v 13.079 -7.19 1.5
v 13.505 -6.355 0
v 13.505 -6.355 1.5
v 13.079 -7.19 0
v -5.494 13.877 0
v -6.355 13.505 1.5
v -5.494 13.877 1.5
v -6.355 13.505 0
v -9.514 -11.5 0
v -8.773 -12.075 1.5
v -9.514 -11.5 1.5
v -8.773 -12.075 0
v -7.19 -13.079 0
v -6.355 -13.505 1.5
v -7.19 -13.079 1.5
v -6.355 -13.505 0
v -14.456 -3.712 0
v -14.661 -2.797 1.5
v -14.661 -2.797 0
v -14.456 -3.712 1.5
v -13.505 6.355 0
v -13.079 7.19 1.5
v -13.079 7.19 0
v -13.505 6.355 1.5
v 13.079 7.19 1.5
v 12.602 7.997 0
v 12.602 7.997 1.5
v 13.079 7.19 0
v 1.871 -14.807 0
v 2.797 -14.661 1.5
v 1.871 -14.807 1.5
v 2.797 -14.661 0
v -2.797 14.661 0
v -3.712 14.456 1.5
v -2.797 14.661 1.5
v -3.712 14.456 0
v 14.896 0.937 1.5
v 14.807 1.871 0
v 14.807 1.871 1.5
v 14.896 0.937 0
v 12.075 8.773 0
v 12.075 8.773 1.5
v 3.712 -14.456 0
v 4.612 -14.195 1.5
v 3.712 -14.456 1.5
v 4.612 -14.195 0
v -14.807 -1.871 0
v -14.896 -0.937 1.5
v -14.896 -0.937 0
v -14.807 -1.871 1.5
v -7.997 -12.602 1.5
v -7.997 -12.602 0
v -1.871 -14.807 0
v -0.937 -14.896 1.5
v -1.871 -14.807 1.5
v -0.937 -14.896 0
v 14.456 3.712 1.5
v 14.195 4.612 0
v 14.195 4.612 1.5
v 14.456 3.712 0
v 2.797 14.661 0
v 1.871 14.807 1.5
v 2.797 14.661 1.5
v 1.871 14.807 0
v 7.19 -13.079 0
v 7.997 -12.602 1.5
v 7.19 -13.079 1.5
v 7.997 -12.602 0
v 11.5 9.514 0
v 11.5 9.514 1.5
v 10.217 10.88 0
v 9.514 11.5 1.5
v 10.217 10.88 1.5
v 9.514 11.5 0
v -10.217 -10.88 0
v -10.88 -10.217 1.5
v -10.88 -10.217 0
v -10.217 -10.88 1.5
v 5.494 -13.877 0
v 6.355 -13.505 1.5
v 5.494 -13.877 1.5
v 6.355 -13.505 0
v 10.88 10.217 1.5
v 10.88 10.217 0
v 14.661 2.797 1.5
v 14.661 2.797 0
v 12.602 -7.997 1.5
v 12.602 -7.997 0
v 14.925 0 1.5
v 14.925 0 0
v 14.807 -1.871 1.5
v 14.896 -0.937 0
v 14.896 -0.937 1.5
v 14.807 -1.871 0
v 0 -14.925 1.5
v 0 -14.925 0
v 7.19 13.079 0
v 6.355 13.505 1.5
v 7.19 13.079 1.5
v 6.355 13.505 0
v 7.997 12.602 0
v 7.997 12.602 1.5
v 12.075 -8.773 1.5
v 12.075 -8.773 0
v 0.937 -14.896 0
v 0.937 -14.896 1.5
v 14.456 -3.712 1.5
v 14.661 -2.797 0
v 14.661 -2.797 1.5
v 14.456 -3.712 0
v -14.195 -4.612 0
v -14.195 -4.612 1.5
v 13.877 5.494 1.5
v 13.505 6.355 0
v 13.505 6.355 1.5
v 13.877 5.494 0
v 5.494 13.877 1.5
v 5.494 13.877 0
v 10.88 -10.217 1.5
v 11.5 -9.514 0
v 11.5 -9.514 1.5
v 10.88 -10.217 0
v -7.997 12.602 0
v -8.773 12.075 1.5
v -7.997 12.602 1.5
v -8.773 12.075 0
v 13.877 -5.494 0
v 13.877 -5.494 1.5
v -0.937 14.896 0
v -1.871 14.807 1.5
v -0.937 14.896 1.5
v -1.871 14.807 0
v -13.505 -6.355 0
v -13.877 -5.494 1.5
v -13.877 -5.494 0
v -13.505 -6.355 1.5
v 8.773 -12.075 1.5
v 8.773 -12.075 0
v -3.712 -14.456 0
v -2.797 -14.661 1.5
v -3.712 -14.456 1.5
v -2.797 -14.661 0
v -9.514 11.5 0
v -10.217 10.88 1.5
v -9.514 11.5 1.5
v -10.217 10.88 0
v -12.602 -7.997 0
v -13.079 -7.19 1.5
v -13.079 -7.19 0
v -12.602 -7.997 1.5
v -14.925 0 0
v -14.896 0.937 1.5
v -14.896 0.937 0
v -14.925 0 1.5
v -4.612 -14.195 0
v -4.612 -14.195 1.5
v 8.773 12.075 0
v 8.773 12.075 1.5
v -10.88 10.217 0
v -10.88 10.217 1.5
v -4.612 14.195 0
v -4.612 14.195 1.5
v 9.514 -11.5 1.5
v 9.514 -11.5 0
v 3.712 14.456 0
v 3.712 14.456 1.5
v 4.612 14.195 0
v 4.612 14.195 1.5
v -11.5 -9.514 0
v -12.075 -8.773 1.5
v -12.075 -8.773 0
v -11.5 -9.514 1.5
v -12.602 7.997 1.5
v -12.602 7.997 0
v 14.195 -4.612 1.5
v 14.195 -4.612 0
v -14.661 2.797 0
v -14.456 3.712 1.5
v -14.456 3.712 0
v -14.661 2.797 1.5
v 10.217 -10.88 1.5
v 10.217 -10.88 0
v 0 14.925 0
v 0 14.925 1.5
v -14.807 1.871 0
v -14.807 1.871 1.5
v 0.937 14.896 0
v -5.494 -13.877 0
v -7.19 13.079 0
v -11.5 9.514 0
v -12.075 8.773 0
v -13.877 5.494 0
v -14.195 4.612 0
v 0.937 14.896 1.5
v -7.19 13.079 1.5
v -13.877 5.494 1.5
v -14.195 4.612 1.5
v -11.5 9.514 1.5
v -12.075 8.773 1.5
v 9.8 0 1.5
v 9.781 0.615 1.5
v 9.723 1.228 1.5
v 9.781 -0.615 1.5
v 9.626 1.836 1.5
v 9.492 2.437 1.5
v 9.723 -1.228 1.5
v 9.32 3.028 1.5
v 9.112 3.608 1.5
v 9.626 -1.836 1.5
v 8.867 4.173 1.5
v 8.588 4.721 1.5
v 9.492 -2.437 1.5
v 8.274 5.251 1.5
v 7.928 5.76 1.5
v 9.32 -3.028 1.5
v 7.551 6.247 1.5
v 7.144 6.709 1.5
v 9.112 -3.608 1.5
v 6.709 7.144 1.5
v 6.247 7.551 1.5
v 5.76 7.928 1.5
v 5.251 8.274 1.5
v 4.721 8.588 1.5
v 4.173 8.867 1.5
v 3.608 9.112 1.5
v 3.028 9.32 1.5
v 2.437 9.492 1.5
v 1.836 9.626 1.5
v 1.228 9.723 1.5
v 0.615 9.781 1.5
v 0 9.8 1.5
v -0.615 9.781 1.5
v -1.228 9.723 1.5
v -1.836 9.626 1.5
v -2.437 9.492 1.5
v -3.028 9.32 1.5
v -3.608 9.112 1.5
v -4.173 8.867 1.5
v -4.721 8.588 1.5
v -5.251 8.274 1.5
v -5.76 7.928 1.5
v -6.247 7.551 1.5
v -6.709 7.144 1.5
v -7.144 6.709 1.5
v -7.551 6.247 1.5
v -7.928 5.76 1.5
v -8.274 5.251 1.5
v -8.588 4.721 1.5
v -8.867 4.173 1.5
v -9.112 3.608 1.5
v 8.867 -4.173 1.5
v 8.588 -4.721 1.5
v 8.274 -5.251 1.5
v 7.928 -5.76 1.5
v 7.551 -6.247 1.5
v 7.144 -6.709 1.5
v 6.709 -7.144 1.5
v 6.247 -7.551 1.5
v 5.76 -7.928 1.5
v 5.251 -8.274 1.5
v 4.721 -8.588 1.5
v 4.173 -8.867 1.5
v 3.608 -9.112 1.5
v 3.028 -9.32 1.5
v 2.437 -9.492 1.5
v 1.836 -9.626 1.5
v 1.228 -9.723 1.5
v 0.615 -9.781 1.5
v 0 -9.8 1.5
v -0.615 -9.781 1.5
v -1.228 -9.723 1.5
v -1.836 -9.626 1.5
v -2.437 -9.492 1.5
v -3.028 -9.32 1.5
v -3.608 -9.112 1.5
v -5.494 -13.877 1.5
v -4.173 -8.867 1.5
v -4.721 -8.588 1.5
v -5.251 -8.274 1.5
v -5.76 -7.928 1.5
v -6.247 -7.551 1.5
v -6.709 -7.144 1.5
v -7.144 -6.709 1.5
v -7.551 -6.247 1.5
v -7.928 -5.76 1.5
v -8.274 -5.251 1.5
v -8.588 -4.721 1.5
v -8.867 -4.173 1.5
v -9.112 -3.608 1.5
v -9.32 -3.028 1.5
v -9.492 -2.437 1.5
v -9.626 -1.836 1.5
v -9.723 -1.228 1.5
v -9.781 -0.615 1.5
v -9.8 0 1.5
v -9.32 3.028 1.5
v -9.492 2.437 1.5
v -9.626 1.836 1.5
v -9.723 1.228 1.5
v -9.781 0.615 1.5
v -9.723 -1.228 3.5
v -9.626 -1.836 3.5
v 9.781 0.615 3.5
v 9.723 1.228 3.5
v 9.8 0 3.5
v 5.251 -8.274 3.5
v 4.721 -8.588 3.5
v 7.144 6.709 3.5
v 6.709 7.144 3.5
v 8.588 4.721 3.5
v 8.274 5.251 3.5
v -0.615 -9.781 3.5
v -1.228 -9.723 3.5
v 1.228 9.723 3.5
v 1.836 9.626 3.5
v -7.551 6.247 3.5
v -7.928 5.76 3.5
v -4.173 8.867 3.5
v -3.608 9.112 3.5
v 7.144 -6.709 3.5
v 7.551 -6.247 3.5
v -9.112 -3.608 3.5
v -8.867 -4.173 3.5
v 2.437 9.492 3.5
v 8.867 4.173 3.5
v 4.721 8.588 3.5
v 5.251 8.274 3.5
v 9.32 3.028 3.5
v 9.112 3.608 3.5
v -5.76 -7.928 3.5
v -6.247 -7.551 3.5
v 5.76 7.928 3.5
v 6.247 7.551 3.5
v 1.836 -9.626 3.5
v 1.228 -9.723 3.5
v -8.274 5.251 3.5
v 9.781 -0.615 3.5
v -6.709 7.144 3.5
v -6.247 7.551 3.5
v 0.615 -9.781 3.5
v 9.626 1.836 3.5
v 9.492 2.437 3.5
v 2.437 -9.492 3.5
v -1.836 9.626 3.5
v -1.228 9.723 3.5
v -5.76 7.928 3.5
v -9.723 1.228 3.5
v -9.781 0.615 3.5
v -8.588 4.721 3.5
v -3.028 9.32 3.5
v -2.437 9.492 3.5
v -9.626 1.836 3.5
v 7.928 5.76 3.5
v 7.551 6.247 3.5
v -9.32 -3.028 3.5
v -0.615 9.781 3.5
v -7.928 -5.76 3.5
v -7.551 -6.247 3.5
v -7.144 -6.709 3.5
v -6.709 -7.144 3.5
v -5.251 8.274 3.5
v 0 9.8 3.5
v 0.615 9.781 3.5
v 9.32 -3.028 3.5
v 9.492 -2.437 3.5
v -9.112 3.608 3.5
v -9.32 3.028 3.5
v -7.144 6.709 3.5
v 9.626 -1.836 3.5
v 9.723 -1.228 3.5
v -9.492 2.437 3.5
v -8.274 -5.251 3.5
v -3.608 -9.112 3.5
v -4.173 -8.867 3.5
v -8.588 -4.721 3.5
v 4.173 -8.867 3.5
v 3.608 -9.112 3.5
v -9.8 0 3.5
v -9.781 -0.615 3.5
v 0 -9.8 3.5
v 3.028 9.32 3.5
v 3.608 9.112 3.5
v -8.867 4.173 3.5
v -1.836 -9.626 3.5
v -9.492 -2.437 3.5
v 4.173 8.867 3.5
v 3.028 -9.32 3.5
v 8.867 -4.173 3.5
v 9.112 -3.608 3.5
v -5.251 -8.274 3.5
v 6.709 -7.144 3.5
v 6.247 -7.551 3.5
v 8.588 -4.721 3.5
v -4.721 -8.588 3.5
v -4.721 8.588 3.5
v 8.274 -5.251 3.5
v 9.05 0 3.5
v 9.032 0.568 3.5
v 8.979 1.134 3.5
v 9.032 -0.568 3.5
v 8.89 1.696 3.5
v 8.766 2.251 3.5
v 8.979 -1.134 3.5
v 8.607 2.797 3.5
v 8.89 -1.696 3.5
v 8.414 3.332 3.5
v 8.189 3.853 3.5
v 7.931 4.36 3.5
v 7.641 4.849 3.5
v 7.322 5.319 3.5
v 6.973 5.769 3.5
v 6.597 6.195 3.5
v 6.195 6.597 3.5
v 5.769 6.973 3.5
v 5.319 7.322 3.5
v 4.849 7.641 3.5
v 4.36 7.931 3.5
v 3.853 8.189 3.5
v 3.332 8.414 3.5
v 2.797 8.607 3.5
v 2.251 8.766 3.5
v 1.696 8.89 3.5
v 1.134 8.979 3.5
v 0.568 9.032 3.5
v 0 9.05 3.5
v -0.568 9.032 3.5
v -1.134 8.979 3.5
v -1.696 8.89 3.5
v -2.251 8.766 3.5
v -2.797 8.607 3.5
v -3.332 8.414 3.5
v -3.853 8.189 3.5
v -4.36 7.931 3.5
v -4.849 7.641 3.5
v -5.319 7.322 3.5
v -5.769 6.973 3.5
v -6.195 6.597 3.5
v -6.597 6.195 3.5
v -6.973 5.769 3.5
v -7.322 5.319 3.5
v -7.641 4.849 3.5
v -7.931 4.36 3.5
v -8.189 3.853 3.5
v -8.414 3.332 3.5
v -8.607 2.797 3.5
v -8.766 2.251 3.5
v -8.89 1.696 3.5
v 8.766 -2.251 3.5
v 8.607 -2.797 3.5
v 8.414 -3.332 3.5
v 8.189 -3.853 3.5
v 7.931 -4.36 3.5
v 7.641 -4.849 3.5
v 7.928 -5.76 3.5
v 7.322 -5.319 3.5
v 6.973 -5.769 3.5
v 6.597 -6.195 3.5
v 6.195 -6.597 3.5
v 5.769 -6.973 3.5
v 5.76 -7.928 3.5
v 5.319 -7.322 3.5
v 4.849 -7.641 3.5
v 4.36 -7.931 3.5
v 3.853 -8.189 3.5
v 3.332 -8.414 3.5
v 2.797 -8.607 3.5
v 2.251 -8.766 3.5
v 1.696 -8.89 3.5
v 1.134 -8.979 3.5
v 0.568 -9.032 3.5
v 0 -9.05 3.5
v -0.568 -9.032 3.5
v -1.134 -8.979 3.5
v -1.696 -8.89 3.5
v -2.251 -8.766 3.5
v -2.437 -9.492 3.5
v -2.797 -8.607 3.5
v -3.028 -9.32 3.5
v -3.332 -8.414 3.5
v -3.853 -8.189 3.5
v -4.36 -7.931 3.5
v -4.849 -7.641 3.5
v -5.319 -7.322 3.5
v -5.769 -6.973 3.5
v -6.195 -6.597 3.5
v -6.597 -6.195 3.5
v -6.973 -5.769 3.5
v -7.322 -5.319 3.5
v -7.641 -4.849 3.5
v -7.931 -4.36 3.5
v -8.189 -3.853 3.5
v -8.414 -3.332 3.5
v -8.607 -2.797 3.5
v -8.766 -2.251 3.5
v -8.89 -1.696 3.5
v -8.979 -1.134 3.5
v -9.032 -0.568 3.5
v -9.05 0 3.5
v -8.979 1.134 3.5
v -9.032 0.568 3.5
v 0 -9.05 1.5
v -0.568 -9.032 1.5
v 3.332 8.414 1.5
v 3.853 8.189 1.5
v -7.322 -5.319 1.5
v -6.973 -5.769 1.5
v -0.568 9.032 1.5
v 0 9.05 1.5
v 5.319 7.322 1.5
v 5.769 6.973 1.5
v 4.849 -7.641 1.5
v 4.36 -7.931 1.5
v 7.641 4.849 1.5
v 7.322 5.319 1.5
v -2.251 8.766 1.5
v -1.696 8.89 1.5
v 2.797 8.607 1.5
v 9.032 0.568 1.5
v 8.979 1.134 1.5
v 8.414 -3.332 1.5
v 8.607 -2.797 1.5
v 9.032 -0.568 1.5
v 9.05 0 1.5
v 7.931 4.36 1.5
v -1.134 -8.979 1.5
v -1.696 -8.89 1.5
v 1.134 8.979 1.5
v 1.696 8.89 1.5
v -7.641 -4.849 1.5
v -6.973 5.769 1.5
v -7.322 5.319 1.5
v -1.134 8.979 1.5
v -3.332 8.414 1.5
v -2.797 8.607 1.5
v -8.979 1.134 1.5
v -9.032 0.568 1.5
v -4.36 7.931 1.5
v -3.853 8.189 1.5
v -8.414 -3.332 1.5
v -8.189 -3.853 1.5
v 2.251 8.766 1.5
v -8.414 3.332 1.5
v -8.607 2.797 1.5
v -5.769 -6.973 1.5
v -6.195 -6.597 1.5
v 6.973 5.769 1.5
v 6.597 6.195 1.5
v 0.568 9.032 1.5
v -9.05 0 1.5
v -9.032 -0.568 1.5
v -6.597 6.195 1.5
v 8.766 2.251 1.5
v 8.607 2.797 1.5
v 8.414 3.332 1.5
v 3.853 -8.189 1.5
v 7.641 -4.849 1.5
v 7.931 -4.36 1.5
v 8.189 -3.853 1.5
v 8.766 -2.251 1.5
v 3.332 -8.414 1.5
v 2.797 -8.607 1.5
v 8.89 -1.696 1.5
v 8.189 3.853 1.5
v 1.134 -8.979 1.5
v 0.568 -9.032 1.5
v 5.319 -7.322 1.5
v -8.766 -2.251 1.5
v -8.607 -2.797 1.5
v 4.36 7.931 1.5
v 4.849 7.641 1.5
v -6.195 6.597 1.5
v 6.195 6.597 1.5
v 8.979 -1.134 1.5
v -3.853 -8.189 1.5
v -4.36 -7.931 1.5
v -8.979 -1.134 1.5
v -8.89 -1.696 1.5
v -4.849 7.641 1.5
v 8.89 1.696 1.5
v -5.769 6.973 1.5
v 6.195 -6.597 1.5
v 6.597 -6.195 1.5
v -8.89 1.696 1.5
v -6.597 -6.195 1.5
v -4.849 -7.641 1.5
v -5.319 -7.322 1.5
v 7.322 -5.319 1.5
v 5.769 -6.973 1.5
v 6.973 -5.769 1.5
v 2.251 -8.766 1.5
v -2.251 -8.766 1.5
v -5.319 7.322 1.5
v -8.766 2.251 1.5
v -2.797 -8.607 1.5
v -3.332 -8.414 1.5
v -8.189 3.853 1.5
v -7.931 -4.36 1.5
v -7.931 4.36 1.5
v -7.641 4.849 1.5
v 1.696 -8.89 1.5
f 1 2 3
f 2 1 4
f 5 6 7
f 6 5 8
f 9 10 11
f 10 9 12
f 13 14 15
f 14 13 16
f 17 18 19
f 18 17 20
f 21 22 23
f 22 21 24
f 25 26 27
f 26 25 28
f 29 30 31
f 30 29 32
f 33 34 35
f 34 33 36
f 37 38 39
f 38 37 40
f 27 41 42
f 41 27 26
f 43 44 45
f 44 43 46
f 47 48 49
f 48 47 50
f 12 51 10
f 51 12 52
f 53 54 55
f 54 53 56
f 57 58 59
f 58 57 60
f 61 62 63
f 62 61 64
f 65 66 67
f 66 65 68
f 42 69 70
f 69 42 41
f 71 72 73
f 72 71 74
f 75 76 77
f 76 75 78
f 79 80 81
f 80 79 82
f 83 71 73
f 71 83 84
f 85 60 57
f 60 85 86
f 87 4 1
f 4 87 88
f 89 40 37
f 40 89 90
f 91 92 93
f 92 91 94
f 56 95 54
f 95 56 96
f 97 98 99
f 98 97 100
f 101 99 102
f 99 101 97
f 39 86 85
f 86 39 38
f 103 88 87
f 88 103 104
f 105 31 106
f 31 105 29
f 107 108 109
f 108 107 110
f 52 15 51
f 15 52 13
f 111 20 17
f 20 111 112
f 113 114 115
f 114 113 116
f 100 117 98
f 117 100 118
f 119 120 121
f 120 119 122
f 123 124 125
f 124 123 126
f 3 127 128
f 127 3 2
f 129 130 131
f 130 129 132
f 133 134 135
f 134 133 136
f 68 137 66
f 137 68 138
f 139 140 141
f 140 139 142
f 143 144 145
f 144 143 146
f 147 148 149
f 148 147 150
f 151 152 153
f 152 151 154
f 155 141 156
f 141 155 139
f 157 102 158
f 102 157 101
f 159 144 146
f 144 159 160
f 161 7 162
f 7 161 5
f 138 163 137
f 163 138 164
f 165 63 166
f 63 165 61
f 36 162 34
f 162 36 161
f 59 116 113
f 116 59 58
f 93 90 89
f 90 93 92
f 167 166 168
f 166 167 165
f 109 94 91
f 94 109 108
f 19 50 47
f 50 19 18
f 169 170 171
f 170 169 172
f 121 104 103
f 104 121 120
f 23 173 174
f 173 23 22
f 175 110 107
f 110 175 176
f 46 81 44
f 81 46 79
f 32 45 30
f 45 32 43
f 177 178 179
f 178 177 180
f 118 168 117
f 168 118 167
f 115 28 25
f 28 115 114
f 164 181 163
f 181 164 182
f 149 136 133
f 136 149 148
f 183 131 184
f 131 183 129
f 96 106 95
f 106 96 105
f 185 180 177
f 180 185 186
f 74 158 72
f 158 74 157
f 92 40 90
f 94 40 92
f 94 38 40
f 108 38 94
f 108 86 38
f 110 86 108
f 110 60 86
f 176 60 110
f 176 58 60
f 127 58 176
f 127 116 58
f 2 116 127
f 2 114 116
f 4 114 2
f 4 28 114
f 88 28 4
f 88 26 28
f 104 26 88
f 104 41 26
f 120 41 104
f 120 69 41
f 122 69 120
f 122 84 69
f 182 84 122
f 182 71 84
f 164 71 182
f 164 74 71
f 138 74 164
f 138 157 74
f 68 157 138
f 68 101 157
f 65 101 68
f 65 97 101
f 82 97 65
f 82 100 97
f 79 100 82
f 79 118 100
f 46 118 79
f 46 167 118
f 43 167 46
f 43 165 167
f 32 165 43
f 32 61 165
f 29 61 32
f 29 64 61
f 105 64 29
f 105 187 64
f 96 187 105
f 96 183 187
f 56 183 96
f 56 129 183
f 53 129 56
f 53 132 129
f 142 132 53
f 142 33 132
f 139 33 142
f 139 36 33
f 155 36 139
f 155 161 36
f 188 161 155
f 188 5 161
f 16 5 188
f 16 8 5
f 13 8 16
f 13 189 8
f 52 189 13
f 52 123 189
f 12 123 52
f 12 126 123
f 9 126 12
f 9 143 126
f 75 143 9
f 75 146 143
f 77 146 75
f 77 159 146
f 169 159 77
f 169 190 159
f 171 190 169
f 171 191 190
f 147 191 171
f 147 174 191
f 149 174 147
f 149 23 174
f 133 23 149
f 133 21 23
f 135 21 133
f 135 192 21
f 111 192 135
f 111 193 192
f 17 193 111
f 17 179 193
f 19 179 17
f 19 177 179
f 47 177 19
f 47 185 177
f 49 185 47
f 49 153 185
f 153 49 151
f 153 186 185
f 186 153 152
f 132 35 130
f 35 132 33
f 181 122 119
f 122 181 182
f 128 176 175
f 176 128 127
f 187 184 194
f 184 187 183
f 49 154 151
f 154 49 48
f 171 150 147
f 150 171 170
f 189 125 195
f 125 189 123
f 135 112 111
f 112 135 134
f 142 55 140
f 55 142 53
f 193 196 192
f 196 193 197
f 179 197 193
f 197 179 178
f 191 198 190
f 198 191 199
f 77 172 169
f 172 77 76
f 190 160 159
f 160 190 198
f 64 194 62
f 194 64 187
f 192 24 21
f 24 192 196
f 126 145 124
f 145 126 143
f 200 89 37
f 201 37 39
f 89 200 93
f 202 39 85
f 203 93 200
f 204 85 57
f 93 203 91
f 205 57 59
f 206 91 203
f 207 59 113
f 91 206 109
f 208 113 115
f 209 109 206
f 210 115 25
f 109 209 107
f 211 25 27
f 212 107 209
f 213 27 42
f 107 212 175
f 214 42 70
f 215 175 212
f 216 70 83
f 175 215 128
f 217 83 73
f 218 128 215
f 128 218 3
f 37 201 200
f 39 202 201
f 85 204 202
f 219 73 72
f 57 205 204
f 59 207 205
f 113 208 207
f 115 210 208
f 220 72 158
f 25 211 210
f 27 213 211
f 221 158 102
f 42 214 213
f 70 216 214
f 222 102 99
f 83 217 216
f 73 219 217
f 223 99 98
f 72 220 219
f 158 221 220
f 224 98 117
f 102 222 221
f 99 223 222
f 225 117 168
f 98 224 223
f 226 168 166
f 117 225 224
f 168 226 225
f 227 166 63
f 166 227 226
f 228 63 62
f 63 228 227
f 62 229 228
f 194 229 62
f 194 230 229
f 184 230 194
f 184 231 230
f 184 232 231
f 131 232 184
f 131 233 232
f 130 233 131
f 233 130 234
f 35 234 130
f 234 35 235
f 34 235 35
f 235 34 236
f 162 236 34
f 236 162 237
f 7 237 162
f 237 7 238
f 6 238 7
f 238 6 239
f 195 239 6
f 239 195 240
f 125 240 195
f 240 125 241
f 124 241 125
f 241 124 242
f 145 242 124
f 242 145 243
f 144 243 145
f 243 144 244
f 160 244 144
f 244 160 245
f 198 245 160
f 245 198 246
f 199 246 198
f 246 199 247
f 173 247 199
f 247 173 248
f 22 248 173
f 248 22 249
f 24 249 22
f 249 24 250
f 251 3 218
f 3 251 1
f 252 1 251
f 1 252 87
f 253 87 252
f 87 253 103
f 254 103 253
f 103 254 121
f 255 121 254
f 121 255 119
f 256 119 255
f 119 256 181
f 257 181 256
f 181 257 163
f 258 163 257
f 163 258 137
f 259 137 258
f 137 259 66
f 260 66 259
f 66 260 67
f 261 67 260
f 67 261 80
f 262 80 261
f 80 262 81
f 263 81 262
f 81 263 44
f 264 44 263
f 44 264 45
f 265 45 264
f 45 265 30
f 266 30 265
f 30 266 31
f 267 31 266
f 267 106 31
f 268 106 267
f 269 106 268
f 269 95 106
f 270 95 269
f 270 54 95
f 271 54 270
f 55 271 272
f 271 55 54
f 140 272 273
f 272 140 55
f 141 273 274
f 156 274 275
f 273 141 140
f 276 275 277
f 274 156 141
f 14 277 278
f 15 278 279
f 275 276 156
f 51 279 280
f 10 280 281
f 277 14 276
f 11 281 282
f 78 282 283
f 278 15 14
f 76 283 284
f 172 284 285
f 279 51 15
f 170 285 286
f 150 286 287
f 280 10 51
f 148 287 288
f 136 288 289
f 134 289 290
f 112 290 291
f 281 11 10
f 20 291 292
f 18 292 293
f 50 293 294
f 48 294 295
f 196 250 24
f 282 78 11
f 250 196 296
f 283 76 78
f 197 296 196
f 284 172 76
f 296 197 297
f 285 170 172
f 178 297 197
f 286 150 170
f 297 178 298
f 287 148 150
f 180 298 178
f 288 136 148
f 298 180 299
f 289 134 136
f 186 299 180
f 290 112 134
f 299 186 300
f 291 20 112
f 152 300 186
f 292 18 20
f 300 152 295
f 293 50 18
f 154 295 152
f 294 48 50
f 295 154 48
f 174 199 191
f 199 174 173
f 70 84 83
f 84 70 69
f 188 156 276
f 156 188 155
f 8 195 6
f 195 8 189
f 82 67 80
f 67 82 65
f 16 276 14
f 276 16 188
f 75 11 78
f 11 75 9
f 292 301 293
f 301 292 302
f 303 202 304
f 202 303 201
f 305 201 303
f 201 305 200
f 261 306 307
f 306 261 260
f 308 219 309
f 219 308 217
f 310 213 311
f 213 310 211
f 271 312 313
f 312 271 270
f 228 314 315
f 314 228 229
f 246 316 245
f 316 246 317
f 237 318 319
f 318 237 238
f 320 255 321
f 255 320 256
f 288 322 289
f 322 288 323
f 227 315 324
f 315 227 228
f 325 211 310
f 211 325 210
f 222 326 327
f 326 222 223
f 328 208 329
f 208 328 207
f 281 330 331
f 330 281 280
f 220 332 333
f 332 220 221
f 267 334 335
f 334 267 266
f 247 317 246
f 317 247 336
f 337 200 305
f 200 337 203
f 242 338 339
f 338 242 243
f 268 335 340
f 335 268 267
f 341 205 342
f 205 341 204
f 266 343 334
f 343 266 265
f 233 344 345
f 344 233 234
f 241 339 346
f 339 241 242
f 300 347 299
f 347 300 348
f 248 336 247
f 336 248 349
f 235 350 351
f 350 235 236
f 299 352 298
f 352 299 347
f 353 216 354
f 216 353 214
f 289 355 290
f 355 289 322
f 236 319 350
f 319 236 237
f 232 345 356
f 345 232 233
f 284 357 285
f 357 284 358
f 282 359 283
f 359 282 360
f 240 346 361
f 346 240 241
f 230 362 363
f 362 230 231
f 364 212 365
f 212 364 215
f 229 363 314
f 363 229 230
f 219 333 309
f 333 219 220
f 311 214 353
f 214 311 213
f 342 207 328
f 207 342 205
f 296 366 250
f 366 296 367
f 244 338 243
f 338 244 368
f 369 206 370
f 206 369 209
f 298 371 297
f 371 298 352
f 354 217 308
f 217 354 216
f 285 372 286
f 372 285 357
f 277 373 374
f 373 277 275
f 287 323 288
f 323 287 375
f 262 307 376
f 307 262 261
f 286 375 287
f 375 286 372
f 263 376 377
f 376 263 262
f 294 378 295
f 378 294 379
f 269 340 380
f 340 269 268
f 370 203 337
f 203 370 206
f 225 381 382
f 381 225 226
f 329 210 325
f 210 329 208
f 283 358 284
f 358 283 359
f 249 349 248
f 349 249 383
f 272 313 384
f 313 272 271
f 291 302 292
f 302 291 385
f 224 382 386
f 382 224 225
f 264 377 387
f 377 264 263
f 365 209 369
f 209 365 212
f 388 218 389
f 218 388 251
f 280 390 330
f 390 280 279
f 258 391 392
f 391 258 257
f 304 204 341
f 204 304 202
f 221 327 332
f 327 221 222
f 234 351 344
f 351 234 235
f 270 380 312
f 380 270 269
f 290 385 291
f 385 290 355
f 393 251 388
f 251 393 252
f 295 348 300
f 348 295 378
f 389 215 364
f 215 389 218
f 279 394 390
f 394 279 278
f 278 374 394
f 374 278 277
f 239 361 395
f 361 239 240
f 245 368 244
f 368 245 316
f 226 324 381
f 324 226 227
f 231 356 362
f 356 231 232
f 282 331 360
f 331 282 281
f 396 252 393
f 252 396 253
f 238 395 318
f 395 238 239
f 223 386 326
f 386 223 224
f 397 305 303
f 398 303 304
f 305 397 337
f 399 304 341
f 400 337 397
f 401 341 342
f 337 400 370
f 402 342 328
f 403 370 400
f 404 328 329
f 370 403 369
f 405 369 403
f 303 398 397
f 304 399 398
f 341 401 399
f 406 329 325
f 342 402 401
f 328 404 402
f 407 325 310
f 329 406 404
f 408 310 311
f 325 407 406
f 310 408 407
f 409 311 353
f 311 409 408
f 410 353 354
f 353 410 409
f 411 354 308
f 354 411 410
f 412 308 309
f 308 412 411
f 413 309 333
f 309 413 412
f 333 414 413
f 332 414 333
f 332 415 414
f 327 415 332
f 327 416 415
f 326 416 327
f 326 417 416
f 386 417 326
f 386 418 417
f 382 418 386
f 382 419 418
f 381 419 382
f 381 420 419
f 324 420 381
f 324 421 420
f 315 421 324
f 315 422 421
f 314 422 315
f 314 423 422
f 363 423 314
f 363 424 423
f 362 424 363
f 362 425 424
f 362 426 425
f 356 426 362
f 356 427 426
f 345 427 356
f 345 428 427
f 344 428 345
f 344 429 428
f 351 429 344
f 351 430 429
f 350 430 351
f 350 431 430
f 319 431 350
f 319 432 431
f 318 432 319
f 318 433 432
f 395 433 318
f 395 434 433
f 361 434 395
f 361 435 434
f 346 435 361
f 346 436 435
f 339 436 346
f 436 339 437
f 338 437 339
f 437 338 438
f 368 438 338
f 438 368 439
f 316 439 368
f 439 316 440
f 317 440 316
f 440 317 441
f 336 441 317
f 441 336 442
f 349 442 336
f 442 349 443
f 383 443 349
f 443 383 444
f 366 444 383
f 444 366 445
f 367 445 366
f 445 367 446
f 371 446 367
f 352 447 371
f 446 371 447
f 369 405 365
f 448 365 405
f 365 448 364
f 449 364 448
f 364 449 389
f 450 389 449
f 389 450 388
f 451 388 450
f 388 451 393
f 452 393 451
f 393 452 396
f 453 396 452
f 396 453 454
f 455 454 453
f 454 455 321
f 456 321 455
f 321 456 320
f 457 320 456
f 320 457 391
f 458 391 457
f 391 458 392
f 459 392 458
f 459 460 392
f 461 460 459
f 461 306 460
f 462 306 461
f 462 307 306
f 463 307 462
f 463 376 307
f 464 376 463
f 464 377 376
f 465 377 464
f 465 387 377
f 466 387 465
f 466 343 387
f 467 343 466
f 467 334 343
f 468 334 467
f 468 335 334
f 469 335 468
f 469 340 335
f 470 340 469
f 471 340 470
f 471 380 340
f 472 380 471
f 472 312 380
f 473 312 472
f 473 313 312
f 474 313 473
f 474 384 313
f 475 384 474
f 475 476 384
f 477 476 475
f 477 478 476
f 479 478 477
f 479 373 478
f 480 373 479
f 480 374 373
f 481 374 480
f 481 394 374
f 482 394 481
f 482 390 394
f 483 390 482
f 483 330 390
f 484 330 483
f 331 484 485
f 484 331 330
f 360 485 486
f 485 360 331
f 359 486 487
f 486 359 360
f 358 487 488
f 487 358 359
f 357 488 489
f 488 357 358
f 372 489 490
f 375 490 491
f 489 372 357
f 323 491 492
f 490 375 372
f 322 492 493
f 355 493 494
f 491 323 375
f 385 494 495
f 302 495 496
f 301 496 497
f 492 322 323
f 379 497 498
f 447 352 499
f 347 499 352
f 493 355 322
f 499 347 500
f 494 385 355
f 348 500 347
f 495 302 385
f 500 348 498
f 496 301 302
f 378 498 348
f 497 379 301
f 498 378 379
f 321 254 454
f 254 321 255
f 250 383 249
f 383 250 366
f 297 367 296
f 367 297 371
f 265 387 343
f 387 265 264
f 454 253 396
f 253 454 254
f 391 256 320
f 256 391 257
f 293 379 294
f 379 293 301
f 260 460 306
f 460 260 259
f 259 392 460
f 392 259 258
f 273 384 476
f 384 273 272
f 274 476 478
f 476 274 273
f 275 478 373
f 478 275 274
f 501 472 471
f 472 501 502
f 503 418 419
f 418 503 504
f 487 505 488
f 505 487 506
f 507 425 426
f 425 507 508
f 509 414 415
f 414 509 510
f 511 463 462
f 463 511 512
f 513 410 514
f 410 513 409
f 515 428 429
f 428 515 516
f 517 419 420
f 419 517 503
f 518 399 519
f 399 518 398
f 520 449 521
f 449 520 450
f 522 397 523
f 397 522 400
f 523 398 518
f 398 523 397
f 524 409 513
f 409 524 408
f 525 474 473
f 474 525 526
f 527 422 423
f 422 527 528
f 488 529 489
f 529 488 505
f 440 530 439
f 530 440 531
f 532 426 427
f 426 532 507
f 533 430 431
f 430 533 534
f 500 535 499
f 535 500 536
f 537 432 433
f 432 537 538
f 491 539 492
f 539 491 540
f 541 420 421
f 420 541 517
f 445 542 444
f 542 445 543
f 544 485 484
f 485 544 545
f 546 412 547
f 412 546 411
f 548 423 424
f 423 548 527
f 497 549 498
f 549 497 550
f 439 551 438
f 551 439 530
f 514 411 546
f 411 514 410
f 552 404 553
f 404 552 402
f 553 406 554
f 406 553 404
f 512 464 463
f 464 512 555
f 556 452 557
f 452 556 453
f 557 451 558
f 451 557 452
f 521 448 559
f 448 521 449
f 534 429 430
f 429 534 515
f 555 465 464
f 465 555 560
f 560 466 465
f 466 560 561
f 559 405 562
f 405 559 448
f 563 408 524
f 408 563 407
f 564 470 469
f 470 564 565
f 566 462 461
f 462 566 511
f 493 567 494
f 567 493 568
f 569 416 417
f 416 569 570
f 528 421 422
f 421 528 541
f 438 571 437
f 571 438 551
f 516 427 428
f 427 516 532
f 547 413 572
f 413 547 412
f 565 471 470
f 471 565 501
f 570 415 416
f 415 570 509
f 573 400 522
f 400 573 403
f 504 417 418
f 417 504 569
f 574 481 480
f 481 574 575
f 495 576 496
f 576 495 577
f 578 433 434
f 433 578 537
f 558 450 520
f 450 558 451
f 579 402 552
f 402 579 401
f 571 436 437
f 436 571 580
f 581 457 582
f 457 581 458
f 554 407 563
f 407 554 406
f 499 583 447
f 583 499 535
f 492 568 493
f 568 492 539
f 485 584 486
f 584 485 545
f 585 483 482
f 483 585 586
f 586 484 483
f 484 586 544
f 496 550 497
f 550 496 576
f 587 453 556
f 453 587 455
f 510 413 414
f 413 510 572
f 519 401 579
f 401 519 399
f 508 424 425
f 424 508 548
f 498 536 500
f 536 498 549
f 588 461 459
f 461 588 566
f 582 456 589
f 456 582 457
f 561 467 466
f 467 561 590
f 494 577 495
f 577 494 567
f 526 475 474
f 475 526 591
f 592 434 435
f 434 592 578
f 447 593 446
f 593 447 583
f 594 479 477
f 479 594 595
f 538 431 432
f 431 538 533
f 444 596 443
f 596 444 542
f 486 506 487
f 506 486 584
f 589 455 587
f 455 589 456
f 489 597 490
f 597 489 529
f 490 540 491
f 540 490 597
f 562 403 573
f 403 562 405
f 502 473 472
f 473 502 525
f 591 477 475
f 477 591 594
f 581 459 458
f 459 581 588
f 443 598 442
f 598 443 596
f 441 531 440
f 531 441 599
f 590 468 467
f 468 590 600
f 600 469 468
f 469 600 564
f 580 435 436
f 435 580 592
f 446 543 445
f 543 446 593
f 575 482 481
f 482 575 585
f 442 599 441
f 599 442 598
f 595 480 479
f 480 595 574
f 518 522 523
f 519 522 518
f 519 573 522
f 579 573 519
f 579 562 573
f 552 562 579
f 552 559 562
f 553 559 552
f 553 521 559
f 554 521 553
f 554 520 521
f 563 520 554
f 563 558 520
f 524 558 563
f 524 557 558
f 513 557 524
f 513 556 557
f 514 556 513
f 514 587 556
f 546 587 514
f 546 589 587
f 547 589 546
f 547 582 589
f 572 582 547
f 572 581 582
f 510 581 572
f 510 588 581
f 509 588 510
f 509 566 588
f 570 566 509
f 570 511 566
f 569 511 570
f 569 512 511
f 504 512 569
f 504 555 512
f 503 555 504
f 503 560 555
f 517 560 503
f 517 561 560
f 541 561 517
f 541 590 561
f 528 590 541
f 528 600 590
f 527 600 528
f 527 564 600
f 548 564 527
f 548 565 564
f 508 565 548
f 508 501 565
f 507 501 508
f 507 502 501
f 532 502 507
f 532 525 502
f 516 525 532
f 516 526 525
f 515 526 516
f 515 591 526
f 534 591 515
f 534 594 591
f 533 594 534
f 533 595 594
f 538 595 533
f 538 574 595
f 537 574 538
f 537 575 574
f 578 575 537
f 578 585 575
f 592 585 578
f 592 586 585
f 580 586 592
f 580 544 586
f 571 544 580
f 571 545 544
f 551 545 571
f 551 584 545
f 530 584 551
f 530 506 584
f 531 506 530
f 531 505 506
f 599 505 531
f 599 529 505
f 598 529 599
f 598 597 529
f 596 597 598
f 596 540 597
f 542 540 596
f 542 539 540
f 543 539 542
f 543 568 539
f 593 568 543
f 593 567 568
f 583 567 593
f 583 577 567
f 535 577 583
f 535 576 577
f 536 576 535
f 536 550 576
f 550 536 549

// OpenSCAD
capOutsideDiameter=29.85;
capThickness=1.5;
capInsideDiameter=19.6;
capStemLength=2;
capStemThickness=1.5;

$fn=100;

difference() {
    union() {
    cylinder(h=capThickness,d=capOutsideDiameter);
    cylinder(h=capThickness+capStemLength,d=capInsideDiameter);
    }
    translate([0,0,capThickness]) cylinder(h=capStemLength+1,d=capInsideDiameter-capStemThickness);
}
